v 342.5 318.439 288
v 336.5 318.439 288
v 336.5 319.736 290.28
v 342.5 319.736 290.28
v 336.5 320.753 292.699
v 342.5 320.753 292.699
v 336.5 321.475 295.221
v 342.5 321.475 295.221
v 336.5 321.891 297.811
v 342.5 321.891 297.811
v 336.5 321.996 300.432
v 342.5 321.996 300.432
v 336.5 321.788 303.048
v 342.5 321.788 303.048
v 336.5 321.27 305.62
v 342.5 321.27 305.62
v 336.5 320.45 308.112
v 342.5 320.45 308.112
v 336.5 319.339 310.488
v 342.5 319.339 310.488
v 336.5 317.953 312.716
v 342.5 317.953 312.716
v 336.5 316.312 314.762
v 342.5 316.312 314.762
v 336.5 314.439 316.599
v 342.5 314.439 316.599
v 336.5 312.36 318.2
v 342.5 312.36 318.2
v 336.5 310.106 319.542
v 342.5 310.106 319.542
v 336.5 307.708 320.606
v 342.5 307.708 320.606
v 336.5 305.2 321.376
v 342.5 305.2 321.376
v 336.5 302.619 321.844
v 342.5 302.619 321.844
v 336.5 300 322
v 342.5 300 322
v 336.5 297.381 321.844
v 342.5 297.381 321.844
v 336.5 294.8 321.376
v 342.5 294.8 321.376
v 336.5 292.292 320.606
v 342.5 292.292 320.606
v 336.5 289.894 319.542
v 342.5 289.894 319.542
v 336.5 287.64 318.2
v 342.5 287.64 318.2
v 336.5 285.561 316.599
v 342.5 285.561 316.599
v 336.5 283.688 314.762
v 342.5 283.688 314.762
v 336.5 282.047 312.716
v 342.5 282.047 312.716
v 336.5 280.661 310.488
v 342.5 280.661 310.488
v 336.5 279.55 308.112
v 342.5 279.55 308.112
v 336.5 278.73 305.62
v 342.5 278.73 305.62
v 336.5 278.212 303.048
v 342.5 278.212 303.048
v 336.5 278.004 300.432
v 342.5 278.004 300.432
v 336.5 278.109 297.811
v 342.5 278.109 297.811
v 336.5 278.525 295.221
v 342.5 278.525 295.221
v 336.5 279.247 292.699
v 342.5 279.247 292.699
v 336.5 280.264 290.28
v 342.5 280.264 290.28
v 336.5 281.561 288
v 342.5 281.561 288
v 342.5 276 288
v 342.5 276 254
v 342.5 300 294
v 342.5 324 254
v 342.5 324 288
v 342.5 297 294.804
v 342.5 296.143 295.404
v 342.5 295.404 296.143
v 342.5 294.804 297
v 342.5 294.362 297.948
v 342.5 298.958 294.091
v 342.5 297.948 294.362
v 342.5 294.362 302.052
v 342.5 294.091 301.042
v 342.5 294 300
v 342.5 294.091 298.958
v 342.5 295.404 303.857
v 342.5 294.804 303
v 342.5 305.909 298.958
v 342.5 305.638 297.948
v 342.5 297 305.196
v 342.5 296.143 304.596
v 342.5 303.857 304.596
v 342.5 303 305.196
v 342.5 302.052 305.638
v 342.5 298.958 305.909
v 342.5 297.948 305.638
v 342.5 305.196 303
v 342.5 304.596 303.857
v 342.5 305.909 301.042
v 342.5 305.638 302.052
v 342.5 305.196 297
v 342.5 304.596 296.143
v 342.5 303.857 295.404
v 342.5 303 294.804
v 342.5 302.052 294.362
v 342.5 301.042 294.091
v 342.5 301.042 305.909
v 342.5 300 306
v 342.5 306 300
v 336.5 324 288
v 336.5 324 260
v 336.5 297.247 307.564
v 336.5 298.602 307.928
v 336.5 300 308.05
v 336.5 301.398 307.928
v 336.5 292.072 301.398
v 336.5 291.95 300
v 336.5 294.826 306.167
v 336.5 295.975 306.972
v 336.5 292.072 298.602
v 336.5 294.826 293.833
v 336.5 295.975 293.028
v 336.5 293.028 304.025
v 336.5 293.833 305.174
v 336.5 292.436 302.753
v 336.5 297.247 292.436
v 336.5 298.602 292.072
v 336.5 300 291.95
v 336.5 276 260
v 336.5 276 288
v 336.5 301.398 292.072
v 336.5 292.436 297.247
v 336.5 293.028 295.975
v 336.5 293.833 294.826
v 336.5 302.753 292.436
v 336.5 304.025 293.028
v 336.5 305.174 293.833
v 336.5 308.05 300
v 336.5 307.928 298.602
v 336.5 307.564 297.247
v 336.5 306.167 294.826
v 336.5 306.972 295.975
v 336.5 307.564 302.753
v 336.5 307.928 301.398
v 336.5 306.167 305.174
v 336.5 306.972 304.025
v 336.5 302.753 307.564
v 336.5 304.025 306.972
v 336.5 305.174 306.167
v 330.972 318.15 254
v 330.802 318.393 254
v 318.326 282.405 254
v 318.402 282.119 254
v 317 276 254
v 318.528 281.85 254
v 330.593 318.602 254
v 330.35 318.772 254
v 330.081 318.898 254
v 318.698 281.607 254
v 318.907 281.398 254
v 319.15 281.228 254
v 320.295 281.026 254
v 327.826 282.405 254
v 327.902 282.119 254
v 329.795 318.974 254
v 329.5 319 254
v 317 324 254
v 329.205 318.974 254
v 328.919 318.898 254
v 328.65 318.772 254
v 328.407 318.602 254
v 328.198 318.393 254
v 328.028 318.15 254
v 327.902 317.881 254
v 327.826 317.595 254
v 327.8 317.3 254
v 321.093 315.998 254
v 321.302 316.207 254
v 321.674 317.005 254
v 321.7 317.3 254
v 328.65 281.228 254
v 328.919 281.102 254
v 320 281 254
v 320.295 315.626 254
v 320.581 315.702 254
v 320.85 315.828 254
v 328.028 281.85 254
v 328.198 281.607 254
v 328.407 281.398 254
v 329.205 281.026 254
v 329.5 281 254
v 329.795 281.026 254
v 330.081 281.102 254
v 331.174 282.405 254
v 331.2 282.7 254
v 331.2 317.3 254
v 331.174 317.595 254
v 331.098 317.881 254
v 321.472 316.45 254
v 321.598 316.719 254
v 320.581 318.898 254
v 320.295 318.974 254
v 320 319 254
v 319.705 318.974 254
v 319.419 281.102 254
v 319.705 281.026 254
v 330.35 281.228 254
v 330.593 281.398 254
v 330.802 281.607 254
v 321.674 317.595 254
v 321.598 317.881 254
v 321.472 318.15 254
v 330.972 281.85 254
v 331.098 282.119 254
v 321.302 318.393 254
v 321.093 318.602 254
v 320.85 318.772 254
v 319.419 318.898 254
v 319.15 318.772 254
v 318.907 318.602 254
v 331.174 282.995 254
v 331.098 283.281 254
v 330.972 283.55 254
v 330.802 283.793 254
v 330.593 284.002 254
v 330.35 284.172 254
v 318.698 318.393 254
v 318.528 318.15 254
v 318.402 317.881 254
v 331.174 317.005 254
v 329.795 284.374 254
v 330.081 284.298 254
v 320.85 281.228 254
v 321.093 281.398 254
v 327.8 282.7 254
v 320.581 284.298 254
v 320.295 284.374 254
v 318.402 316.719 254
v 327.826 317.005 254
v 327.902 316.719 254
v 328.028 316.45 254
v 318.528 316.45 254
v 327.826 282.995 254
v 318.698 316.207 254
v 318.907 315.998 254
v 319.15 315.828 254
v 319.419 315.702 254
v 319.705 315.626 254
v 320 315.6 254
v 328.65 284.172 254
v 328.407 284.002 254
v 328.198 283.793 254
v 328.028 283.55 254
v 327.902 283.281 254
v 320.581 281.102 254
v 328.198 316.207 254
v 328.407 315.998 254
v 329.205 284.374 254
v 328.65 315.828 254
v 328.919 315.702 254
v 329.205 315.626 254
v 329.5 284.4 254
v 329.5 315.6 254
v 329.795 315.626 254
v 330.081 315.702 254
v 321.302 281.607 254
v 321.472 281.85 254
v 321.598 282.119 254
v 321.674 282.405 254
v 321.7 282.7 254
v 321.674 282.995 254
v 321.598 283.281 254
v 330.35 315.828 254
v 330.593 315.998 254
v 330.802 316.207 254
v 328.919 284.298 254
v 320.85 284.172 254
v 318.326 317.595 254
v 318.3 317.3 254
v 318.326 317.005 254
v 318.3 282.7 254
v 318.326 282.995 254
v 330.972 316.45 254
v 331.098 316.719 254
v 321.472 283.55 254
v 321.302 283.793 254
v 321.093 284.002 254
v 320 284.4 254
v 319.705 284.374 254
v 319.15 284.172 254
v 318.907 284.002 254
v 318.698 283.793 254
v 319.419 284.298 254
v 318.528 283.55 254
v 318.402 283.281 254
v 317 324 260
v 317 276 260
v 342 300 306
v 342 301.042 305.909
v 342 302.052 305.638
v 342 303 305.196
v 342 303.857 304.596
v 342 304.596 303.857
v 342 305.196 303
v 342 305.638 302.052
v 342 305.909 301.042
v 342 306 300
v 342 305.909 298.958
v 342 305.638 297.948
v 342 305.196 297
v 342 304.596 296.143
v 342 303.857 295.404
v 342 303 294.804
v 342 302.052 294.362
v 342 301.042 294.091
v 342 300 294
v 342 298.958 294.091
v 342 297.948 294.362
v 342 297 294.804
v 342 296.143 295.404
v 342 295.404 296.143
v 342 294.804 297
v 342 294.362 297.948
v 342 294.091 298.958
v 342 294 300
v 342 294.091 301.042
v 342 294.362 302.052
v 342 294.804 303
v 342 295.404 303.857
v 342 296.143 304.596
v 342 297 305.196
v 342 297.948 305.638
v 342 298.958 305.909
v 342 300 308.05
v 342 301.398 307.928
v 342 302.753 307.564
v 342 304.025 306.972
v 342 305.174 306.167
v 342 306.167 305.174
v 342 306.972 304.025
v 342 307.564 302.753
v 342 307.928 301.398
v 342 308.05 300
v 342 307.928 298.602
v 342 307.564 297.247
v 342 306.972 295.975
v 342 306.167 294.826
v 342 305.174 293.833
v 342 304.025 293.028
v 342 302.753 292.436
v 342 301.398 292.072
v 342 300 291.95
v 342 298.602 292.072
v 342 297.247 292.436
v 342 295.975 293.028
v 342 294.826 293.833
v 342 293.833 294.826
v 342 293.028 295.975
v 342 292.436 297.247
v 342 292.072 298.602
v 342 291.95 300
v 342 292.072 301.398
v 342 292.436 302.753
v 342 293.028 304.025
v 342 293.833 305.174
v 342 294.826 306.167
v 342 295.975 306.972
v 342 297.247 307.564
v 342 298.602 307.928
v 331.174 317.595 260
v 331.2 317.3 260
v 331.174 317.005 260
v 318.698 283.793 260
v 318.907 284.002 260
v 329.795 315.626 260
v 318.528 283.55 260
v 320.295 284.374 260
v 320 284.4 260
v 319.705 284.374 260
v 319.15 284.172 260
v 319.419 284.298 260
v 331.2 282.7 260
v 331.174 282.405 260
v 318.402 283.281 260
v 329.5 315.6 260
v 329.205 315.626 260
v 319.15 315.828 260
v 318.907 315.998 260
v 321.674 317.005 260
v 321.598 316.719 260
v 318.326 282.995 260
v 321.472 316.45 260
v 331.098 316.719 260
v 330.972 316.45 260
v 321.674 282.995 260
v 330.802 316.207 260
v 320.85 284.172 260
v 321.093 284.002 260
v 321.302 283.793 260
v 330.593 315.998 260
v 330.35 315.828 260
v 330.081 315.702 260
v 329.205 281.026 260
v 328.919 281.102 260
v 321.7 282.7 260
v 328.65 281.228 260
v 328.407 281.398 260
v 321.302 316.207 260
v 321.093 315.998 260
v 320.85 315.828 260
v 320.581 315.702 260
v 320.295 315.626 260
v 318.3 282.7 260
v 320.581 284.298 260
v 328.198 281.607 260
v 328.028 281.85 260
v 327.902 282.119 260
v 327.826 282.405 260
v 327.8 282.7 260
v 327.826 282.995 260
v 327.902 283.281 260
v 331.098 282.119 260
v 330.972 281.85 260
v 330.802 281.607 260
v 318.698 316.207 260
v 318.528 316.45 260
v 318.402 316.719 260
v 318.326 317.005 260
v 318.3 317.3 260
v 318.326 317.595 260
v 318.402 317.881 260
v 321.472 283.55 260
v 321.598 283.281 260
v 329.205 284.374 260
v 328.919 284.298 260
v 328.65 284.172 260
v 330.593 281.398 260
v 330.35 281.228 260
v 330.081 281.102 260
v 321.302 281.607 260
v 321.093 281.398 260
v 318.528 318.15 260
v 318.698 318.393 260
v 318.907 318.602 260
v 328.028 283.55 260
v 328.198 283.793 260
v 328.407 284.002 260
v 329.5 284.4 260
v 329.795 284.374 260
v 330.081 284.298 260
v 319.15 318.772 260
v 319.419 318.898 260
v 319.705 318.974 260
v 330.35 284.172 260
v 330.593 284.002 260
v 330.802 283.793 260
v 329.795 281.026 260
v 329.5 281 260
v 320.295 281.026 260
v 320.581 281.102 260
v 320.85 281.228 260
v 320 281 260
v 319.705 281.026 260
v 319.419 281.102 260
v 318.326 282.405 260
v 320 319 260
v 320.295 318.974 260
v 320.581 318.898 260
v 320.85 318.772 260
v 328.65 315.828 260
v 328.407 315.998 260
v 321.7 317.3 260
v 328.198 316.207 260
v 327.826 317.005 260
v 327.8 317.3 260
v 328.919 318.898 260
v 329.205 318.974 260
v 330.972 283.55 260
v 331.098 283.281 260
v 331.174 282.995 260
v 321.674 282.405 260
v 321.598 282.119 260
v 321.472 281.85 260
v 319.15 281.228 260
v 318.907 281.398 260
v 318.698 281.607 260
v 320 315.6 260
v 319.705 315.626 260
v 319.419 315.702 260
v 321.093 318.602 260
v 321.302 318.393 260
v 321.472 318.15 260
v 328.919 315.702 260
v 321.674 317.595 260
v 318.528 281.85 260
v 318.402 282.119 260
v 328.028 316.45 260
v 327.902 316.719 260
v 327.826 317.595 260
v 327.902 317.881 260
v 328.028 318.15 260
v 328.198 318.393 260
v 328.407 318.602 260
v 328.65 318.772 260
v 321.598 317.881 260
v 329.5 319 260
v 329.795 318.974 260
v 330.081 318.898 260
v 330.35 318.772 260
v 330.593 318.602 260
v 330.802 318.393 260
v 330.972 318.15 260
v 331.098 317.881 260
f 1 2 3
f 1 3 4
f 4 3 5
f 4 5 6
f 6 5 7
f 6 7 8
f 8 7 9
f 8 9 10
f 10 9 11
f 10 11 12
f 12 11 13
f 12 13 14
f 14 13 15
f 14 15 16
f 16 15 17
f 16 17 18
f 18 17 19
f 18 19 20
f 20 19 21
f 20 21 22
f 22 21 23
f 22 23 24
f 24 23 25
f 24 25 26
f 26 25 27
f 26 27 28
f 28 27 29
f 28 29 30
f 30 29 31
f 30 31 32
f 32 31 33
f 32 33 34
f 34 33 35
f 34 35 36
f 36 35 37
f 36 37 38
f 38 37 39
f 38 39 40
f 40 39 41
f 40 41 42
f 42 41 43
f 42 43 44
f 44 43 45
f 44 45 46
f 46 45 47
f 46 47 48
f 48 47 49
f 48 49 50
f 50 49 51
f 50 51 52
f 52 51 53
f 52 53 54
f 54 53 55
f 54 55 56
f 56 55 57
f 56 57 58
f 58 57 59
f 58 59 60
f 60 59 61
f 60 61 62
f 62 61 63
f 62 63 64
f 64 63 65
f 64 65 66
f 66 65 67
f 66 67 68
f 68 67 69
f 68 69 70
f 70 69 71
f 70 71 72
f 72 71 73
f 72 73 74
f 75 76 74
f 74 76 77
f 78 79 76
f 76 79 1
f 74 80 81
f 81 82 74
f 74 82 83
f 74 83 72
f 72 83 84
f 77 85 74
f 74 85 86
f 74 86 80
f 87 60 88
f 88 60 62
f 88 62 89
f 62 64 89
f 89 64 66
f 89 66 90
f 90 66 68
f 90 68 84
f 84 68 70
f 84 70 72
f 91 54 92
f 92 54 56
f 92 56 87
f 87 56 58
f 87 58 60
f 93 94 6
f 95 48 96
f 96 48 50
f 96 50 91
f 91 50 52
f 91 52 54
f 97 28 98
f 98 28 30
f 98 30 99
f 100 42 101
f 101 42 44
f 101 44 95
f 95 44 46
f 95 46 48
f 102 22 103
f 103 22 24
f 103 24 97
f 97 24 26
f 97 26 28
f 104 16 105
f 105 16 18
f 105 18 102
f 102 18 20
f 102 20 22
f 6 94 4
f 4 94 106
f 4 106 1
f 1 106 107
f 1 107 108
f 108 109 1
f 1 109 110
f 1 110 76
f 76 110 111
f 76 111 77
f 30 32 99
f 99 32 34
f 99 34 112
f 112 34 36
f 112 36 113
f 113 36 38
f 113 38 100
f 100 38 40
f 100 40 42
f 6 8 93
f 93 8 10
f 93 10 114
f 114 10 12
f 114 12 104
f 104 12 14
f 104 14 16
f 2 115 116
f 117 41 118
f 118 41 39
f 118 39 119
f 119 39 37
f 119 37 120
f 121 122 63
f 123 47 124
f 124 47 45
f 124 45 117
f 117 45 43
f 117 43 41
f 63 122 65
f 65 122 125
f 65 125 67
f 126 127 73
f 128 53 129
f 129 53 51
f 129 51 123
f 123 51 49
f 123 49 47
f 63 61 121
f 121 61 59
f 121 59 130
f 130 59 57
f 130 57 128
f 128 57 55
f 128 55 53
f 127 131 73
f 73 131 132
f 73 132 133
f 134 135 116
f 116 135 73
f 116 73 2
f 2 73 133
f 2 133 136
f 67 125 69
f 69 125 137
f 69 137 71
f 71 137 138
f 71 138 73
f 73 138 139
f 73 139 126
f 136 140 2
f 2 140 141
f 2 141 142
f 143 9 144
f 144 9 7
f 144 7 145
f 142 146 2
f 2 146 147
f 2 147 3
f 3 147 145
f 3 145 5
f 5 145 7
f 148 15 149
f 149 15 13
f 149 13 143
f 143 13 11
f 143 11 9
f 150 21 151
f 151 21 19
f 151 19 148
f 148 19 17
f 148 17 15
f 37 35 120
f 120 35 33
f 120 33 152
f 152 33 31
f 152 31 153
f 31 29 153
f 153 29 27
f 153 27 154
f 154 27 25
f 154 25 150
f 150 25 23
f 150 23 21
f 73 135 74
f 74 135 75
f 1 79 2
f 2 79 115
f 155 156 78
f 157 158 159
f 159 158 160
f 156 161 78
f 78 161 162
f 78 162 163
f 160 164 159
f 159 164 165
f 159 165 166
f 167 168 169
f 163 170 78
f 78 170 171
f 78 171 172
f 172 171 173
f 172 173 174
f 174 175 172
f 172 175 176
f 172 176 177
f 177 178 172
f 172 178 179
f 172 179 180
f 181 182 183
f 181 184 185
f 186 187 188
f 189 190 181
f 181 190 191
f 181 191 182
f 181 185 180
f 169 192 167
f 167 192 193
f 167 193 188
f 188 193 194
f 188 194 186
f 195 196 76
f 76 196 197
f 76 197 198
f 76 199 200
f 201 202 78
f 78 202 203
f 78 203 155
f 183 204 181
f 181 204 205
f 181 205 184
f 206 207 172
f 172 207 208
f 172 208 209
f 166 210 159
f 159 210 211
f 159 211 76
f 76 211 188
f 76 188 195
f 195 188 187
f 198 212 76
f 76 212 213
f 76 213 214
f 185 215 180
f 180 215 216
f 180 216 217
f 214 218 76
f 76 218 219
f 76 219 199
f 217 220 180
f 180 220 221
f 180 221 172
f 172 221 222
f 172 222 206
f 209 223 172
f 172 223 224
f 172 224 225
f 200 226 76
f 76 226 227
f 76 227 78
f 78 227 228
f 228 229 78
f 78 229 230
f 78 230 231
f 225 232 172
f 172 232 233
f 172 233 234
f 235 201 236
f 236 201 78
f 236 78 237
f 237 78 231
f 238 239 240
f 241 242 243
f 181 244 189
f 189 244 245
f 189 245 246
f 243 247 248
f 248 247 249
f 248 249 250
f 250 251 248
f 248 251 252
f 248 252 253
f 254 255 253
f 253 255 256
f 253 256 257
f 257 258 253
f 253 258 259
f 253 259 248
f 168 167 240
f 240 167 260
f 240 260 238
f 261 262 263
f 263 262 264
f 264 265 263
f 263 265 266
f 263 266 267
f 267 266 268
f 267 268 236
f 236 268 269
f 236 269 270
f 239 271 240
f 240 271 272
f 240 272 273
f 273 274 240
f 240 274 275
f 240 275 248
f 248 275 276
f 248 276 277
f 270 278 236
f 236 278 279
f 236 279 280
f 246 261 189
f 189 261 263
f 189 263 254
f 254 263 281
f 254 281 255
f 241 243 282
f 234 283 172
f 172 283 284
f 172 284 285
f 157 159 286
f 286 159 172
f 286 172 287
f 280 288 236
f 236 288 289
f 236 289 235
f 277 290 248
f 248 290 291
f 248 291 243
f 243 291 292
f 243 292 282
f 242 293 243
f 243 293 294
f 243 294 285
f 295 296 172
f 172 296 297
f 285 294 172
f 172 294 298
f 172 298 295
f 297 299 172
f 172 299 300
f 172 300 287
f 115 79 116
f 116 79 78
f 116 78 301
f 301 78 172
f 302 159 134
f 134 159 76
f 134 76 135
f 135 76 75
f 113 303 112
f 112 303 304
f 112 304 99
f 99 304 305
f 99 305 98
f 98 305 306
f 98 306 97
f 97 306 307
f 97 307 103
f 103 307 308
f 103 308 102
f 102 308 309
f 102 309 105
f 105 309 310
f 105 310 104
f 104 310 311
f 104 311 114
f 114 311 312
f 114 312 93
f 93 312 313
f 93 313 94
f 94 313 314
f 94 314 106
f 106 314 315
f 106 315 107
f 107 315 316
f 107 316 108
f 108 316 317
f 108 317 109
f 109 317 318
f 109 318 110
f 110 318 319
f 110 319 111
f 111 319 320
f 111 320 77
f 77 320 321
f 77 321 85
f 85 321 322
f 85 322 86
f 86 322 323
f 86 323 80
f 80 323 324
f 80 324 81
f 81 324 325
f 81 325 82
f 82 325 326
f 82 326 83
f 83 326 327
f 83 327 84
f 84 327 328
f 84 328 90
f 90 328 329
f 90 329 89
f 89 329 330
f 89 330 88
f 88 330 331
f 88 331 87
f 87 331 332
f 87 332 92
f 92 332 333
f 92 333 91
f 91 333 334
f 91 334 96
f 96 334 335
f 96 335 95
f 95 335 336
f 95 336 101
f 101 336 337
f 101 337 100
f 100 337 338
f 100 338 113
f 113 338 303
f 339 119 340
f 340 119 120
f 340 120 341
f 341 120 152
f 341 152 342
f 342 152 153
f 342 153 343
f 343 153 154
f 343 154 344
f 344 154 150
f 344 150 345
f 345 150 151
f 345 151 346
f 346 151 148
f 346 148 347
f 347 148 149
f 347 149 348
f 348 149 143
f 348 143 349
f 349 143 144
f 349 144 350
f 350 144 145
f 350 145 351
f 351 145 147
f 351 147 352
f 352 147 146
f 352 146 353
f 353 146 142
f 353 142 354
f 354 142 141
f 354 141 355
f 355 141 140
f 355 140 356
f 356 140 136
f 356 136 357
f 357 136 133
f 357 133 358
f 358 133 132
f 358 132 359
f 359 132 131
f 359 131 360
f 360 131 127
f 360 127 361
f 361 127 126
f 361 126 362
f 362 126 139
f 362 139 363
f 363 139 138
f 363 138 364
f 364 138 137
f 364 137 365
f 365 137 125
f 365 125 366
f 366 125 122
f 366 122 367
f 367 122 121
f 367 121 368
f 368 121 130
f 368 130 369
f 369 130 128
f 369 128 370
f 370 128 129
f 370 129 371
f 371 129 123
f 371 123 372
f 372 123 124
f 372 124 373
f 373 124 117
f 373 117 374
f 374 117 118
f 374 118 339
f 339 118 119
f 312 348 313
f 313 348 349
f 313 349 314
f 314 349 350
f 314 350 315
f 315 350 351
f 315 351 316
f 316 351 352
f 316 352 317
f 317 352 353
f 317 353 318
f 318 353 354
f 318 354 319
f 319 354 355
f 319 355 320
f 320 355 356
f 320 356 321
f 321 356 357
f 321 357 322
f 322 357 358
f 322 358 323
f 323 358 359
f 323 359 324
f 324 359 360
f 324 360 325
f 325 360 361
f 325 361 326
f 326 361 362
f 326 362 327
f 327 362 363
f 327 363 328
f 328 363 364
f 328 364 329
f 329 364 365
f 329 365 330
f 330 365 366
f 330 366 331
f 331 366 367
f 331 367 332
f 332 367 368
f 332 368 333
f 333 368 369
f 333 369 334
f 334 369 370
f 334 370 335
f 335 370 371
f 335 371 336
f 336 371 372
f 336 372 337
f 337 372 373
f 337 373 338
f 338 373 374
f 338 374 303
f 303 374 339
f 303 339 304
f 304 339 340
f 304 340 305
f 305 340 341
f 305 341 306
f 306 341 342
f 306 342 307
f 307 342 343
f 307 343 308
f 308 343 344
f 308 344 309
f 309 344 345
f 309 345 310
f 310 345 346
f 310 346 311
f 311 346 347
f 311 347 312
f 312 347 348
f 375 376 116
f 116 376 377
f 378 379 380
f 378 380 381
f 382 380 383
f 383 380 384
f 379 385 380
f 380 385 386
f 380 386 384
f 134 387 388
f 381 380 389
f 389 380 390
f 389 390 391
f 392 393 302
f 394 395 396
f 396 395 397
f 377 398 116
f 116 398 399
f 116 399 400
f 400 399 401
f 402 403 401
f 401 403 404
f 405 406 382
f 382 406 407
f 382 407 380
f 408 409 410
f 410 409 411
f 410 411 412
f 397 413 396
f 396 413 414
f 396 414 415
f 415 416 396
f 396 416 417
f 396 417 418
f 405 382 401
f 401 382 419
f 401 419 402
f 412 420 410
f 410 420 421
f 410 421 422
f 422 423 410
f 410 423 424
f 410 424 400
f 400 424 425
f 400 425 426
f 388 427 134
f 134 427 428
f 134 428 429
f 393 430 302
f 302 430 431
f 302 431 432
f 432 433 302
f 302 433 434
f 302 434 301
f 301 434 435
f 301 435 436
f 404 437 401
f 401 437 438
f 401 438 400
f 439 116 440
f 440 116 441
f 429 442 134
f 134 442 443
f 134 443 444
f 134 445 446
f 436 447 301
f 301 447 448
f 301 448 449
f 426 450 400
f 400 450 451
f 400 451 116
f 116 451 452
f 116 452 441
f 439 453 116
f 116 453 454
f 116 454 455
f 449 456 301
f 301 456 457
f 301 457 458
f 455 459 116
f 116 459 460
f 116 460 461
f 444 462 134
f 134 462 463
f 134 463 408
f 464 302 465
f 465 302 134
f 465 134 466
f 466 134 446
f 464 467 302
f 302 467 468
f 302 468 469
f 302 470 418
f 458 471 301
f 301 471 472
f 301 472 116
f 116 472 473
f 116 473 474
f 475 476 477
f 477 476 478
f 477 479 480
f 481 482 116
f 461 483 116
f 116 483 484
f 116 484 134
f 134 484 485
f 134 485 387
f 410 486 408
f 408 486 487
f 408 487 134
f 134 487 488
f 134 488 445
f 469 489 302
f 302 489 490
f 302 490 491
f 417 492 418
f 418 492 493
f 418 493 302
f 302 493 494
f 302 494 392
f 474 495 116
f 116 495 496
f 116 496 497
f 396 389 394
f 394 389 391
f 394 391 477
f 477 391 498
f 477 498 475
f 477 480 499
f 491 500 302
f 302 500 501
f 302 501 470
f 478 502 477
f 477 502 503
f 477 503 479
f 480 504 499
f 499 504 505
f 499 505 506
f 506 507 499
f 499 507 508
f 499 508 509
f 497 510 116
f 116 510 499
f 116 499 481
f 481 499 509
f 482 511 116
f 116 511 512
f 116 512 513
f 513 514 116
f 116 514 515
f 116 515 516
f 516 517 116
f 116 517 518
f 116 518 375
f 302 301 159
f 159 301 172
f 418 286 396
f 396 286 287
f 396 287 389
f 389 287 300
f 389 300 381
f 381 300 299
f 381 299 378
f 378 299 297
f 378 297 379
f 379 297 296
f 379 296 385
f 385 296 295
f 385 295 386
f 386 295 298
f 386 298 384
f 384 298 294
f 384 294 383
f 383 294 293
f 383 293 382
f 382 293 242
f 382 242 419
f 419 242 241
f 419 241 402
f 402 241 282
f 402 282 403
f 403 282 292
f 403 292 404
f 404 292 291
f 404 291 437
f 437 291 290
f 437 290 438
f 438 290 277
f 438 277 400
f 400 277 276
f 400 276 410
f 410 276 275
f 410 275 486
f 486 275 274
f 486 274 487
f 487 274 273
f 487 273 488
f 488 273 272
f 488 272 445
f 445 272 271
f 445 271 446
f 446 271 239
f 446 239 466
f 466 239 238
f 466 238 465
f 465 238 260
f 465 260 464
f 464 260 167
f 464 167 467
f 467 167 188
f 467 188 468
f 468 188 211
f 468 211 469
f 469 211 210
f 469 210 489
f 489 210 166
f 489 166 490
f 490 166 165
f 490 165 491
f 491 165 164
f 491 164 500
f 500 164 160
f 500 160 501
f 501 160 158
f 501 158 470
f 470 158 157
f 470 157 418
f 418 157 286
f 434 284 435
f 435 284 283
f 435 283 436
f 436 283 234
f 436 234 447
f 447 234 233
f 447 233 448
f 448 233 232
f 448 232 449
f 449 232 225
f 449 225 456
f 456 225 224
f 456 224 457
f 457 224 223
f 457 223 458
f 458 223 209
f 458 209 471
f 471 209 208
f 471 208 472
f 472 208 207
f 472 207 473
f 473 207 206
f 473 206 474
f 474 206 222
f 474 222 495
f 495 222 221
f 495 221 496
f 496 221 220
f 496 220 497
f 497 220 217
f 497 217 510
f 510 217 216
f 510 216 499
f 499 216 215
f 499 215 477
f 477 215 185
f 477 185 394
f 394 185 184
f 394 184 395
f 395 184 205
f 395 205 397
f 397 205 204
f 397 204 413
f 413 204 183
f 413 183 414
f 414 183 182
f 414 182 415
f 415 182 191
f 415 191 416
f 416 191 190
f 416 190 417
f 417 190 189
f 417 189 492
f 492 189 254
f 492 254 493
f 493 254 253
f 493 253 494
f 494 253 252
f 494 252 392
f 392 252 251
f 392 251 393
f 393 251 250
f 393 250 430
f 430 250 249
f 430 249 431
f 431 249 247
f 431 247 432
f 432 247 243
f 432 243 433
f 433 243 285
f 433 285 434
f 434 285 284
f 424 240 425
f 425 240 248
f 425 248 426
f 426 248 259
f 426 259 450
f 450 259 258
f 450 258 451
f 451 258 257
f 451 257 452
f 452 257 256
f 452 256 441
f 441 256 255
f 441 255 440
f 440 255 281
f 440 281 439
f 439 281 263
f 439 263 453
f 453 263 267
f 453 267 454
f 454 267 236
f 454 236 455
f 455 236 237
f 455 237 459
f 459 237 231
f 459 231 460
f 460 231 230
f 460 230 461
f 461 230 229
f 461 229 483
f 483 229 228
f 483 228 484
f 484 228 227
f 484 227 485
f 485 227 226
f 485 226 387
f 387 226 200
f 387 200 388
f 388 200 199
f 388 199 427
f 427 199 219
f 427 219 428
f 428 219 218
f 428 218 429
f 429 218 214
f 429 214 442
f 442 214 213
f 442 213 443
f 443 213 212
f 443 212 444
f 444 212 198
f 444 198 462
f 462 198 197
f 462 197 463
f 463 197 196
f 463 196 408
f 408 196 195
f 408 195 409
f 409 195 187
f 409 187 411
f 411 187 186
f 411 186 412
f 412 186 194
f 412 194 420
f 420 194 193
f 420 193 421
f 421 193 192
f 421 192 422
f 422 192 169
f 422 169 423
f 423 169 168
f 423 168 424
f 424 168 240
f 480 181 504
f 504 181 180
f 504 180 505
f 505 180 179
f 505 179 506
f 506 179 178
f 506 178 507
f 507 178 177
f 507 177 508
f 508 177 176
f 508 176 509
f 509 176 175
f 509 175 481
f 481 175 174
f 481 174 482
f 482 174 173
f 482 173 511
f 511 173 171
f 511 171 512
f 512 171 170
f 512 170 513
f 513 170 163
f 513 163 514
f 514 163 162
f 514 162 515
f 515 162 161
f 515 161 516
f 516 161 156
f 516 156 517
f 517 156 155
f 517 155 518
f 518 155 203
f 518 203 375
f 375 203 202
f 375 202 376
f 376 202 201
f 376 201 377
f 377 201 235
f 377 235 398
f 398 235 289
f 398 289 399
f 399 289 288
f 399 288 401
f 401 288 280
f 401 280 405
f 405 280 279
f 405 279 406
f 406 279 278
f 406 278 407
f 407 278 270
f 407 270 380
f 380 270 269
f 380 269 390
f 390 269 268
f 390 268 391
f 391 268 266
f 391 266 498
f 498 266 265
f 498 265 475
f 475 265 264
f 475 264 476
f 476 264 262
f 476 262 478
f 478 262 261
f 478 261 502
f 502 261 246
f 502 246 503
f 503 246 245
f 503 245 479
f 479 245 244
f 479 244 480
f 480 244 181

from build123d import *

# Parameters (mm, degrees)
SKETCH1_R           = 22
BOSS_EXTRUDE1_DEPTH = 6
SKETCH2_W           = 34
SKETCH2_H           = 48
BOSS_EXTRUDE2_DEPTH = 6
SKETCH3_R           = 6
CUT_EXTRUDE1_DEPTH  = 6
SKETCH4_R           = 8.05
CUT_EXTRUDE2_DEPTH  = 5.5
SKETCH5_W           = 19.51
SKETCH5_H           = 48
SKETCH5_R           = 1.7
BOSS_EXTRUDE3_DEPTH = 6


with BuildPart() as part:
    # Sketch1 → Boss-Extrude1 (new body)
    with BuildSketch(Plane(origin=(336.5, 0, 0), x_dir=(0, 0, -1), z_dir=(1, 0, 0))):
        with Locations((-300, 300)):
            Circle(SKETCH1_R)
    extrude(amount=BOSS_EXTRUDE1_DEPTH)

    # Sketch2 → Boss-Extrude2 (add)
    with BuildSketch(Plane(origin=(336.5, 0, 0), x_dir=(0, 0, -1), z_dir=(1, 0, 0))):
        with Locations((-271, 300)):
            Rectangle(SKETCH2_W, SKETCH2_H)
    extrude(amount=BOSS_EXTRUDE2_DEPTH)

    # Sketch3 → Cut-Extrude1 (cut)
    with BuildSketch(Plane(origin=(336.5, 0, 0), x_dir=(0, 0, -1), z_dir=(1, 0, 0))):
        with Locations((-300, 300)):
            Circle(SKETCH3_R)
    extrude(amount=CUT_EXTRUDE1_DEPTH, mode=Mode.SUBTRACT)

    # Sketch4 → Cut-Extrude2 (cut)
    with BuildSketch(Plane(origin=(336.5, 0, 0), x_dir=(0, 0, -1), z_dir=(1, 0, 0))):
        with Locations((-300, 300)):
            Circle(SKETCH4_R)
    extrude(amount=CUT_EXTRUDE2_DEPTH, mode=Mode.SUBTRACT)

    # Sketch5 → Boss-Extrude3 (add)
    with BuildSketch(Plane.XY.offset(254)):
        with Locations((326.755, 300)):
            Rectangle(SKETCH5_W, SKETCH5_H)
        with Locations((320, 282.7)):
            Circle(SKETCH5_R, mode=Mode.SUBTRACT)
        with Locations((320, 317.3)):
            Circle(SKETCH5_R, mode=Mode.SUBTRACT)
        with Locations((329.5, 282.7)):
            Circle(SKETCH5_R, mode=Mode.SUBTRACT)
        with Locations((329.5, 317.3)):
            Circle(SKETCH5_R, mode=Mode.SUBTRACT)
    extrude(amount=BOSS_EXTRUDE3_DEPTH)


solid = part.part
